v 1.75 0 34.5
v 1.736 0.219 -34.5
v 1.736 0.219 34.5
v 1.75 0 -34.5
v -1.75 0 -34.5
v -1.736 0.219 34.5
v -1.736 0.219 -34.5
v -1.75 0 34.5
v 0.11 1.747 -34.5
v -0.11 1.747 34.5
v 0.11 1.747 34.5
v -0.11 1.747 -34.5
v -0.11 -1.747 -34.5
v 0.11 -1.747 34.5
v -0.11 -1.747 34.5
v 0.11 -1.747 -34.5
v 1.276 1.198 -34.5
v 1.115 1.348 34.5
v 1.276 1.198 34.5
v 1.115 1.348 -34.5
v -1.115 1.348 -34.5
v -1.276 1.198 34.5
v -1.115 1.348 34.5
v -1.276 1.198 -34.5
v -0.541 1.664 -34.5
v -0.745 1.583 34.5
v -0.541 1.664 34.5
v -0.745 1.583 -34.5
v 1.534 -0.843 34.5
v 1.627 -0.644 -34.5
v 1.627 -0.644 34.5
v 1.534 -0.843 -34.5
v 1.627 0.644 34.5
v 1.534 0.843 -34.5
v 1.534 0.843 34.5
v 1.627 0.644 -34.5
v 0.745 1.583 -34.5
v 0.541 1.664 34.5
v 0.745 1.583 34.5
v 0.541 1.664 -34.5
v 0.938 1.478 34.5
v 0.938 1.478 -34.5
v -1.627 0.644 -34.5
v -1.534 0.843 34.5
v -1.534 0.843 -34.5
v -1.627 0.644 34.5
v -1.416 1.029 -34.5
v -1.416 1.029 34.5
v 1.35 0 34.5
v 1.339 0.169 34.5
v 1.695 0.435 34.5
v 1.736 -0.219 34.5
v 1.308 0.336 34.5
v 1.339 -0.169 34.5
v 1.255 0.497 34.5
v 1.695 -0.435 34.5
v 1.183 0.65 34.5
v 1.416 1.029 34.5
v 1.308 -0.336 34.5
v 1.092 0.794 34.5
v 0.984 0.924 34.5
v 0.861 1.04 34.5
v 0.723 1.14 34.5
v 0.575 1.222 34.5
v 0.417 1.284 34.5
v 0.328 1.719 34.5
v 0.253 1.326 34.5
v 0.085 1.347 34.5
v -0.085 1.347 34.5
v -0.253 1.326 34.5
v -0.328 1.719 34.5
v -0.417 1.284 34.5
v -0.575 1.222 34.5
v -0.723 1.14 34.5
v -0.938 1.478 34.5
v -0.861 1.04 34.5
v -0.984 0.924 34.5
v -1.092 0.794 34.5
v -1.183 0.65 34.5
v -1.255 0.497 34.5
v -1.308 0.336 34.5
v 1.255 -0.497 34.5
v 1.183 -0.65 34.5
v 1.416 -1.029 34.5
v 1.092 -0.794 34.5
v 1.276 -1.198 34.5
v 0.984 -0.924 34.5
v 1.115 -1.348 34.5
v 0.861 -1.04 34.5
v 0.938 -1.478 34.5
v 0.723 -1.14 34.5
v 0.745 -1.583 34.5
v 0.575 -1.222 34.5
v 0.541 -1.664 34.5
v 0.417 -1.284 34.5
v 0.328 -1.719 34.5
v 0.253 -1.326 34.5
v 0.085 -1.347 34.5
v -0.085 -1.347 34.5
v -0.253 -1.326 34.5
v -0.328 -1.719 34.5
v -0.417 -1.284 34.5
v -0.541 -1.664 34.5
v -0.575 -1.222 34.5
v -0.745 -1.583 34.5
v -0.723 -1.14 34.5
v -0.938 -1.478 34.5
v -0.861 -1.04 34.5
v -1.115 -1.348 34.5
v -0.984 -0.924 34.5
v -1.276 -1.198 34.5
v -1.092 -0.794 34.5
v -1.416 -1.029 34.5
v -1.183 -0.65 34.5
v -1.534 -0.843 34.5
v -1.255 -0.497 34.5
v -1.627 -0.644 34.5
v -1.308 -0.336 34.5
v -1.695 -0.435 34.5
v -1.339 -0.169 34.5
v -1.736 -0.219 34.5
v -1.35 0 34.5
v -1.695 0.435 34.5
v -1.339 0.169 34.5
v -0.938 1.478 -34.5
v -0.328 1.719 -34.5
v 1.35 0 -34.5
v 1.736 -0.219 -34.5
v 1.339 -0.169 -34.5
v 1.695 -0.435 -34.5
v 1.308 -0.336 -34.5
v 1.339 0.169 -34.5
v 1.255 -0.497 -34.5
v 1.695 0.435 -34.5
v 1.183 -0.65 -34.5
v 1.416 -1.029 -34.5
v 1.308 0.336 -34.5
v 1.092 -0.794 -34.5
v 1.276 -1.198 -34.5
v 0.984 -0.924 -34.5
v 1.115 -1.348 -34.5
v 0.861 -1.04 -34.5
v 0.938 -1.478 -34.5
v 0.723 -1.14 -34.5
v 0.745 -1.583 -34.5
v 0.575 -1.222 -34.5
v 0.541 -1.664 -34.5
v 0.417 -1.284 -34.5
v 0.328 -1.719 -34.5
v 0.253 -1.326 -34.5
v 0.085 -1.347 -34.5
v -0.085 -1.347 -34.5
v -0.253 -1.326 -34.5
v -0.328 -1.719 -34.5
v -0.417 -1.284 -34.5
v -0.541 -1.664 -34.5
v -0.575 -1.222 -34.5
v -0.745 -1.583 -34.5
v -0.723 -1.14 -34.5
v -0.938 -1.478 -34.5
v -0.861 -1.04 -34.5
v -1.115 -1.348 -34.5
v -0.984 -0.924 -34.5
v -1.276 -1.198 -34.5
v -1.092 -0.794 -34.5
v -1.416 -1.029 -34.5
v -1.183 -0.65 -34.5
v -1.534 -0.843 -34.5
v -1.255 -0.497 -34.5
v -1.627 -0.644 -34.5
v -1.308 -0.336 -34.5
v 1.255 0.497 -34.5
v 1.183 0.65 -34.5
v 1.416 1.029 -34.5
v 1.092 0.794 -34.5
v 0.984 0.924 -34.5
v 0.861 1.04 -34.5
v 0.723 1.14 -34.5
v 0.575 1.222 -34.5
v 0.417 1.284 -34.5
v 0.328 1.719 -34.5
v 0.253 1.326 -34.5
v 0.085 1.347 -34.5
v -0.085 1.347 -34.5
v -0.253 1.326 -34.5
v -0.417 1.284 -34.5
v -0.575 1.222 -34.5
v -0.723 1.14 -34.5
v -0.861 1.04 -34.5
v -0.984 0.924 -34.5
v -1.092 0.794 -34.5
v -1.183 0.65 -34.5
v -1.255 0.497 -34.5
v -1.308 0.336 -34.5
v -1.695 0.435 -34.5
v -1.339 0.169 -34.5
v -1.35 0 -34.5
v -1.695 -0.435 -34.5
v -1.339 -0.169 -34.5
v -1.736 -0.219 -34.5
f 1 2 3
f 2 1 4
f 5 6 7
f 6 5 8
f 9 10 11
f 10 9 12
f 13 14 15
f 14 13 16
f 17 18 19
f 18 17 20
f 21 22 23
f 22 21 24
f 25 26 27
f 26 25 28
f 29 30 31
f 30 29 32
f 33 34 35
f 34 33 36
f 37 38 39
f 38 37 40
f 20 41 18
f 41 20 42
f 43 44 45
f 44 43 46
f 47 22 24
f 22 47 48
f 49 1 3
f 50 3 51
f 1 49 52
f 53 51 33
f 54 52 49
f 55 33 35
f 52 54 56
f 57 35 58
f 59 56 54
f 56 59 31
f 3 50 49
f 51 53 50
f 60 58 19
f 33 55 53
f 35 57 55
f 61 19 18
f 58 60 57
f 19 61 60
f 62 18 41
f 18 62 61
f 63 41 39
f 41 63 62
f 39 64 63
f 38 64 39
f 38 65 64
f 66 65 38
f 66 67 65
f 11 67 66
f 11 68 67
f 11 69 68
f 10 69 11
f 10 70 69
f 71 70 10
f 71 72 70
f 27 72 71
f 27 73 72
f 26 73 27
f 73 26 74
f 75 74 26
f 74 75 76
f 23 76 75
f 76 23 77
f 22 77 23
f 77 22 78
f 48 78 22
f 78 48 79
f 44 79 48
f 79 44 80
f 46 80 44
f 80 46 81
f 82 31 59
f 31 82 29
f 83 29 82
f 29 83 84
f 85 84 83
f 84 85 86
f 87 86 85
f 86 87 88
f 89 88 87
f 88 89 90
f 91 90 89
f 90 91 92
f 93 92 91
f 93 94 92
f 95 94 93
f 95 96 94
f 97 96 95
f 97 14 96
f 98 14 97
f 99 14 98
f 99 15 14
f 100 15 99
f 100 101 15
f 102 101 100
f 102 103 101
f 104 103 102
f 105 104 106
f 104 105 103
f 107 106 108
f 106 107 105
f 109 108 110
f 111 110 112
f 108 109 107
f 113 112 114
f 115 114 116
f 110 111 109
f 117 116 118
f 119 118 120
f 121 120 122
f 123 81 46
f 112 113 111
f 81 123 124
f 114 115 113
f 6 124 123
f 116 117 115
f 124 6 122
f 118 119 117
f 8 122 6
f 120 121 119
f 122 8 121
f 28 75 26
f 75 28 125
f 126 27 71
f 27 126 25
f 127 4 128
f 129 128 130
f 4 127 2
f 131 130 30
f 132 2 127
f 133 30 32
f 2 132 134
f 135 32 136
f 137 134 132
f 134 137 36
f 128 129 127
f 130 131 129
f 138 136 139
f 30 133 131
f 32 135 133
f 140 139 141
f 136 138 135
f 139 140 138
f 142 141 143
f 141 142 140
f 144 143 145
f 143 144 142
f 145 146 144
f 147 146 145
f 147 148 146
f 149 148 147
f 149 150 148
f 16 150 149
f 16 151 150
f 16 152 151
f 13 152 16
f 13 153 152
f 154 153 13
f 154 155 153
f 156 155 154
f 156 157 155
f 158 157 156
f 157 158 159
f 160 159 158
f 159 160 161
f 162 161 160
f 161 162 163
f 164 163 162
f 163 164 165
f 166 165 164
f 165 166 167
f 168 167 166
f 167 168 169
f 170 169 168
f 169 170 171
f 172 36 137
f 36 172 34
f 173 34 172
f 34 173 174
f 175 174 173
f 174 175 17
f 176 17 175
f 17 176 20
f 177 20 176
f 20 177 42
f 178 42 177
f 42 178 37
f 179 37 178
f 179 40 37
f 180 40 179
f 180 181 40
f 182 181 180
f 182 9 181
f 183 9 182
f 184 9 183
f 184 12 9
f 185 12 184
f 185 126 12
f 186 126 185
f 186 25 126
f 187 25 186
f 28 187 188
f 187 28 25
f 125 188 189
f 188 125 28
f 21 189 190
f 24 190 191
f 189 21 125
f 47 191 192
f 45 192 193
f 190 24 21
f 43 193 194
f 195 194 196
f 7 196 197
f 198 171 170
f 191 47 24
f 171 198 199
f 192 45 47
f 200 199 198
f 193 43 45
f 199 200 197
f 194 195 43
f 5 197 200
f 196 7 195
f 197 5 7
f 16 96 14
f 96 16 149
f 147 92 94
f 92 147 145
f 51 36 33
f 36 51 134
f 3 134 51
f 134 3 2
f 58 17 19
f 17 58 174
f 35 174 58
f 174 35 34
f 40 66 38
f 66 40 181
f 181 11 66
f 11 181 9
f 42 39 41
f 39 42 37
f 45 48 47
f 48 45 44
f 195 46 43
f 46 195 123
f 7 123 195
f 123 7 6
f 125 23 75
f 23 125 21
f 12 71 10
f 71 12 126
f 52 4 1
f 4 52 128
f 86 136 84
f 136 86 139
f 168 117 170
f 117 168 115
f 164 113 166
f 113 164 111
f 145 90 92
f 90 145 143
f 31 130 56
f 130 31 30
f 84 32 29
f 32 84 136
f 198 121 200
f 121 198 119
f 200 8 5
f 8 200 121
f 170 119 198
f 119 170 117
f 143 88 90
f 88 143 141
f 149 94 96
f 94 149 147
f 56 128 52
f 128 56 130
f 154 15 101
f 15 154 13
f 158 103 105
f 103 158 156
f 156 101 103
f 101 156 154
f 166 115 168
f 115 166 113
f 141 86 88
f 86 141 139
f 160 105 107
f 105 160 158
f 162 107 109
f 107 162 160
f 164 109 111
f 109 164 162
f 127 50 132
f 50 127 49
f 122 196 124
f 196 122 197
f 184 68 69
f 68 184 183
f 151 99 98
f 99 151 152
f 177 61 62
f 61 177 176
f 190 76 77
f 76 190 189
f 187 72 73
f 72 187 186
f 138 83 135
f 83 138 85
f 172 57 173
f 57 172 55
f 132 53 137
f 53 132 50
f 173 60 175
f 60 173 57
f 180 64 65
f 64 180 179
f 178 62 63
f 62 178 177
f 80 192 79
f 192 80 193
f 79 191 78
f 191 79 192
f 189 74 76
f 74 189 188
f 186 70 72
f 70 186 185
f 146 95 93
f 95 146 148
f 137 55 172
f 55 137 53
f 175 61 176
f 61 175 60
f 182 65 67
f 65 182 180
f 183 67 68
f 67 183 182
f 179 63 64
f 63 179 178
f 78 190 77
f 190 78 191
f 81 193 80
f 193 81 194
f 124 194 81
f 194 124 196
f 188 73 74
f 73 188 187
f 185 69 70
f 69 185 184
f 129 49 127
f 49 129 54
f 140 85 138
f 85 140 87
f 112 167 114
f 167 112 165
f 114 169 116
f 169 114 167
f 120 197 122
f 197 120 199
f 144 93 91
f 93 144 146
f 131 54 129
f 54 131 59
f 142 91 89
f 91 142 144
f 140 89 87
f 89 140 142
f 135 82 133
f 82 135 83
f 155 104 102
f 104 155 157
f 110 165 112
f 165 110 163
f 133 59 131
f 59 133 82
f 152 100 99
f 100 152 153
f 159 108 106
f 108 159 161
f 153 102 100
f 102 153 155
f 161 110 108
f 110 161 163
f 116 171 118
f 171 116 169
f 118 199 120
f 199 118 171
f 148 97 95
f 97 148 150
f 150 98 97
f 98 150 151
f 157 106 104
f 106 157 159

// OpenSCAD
$fn = 50;


difference() {
	union() {
		translate(v = [0, 0, -34.5000000000]) {
			cylinder(h = 69, r = 1.7500000000);
		}
	}
	union() {
		translate(v = [0, 0, -100.0000000000]) {
			cylinder(h = 200, r = 1.3500000000);
		}
	}
}
